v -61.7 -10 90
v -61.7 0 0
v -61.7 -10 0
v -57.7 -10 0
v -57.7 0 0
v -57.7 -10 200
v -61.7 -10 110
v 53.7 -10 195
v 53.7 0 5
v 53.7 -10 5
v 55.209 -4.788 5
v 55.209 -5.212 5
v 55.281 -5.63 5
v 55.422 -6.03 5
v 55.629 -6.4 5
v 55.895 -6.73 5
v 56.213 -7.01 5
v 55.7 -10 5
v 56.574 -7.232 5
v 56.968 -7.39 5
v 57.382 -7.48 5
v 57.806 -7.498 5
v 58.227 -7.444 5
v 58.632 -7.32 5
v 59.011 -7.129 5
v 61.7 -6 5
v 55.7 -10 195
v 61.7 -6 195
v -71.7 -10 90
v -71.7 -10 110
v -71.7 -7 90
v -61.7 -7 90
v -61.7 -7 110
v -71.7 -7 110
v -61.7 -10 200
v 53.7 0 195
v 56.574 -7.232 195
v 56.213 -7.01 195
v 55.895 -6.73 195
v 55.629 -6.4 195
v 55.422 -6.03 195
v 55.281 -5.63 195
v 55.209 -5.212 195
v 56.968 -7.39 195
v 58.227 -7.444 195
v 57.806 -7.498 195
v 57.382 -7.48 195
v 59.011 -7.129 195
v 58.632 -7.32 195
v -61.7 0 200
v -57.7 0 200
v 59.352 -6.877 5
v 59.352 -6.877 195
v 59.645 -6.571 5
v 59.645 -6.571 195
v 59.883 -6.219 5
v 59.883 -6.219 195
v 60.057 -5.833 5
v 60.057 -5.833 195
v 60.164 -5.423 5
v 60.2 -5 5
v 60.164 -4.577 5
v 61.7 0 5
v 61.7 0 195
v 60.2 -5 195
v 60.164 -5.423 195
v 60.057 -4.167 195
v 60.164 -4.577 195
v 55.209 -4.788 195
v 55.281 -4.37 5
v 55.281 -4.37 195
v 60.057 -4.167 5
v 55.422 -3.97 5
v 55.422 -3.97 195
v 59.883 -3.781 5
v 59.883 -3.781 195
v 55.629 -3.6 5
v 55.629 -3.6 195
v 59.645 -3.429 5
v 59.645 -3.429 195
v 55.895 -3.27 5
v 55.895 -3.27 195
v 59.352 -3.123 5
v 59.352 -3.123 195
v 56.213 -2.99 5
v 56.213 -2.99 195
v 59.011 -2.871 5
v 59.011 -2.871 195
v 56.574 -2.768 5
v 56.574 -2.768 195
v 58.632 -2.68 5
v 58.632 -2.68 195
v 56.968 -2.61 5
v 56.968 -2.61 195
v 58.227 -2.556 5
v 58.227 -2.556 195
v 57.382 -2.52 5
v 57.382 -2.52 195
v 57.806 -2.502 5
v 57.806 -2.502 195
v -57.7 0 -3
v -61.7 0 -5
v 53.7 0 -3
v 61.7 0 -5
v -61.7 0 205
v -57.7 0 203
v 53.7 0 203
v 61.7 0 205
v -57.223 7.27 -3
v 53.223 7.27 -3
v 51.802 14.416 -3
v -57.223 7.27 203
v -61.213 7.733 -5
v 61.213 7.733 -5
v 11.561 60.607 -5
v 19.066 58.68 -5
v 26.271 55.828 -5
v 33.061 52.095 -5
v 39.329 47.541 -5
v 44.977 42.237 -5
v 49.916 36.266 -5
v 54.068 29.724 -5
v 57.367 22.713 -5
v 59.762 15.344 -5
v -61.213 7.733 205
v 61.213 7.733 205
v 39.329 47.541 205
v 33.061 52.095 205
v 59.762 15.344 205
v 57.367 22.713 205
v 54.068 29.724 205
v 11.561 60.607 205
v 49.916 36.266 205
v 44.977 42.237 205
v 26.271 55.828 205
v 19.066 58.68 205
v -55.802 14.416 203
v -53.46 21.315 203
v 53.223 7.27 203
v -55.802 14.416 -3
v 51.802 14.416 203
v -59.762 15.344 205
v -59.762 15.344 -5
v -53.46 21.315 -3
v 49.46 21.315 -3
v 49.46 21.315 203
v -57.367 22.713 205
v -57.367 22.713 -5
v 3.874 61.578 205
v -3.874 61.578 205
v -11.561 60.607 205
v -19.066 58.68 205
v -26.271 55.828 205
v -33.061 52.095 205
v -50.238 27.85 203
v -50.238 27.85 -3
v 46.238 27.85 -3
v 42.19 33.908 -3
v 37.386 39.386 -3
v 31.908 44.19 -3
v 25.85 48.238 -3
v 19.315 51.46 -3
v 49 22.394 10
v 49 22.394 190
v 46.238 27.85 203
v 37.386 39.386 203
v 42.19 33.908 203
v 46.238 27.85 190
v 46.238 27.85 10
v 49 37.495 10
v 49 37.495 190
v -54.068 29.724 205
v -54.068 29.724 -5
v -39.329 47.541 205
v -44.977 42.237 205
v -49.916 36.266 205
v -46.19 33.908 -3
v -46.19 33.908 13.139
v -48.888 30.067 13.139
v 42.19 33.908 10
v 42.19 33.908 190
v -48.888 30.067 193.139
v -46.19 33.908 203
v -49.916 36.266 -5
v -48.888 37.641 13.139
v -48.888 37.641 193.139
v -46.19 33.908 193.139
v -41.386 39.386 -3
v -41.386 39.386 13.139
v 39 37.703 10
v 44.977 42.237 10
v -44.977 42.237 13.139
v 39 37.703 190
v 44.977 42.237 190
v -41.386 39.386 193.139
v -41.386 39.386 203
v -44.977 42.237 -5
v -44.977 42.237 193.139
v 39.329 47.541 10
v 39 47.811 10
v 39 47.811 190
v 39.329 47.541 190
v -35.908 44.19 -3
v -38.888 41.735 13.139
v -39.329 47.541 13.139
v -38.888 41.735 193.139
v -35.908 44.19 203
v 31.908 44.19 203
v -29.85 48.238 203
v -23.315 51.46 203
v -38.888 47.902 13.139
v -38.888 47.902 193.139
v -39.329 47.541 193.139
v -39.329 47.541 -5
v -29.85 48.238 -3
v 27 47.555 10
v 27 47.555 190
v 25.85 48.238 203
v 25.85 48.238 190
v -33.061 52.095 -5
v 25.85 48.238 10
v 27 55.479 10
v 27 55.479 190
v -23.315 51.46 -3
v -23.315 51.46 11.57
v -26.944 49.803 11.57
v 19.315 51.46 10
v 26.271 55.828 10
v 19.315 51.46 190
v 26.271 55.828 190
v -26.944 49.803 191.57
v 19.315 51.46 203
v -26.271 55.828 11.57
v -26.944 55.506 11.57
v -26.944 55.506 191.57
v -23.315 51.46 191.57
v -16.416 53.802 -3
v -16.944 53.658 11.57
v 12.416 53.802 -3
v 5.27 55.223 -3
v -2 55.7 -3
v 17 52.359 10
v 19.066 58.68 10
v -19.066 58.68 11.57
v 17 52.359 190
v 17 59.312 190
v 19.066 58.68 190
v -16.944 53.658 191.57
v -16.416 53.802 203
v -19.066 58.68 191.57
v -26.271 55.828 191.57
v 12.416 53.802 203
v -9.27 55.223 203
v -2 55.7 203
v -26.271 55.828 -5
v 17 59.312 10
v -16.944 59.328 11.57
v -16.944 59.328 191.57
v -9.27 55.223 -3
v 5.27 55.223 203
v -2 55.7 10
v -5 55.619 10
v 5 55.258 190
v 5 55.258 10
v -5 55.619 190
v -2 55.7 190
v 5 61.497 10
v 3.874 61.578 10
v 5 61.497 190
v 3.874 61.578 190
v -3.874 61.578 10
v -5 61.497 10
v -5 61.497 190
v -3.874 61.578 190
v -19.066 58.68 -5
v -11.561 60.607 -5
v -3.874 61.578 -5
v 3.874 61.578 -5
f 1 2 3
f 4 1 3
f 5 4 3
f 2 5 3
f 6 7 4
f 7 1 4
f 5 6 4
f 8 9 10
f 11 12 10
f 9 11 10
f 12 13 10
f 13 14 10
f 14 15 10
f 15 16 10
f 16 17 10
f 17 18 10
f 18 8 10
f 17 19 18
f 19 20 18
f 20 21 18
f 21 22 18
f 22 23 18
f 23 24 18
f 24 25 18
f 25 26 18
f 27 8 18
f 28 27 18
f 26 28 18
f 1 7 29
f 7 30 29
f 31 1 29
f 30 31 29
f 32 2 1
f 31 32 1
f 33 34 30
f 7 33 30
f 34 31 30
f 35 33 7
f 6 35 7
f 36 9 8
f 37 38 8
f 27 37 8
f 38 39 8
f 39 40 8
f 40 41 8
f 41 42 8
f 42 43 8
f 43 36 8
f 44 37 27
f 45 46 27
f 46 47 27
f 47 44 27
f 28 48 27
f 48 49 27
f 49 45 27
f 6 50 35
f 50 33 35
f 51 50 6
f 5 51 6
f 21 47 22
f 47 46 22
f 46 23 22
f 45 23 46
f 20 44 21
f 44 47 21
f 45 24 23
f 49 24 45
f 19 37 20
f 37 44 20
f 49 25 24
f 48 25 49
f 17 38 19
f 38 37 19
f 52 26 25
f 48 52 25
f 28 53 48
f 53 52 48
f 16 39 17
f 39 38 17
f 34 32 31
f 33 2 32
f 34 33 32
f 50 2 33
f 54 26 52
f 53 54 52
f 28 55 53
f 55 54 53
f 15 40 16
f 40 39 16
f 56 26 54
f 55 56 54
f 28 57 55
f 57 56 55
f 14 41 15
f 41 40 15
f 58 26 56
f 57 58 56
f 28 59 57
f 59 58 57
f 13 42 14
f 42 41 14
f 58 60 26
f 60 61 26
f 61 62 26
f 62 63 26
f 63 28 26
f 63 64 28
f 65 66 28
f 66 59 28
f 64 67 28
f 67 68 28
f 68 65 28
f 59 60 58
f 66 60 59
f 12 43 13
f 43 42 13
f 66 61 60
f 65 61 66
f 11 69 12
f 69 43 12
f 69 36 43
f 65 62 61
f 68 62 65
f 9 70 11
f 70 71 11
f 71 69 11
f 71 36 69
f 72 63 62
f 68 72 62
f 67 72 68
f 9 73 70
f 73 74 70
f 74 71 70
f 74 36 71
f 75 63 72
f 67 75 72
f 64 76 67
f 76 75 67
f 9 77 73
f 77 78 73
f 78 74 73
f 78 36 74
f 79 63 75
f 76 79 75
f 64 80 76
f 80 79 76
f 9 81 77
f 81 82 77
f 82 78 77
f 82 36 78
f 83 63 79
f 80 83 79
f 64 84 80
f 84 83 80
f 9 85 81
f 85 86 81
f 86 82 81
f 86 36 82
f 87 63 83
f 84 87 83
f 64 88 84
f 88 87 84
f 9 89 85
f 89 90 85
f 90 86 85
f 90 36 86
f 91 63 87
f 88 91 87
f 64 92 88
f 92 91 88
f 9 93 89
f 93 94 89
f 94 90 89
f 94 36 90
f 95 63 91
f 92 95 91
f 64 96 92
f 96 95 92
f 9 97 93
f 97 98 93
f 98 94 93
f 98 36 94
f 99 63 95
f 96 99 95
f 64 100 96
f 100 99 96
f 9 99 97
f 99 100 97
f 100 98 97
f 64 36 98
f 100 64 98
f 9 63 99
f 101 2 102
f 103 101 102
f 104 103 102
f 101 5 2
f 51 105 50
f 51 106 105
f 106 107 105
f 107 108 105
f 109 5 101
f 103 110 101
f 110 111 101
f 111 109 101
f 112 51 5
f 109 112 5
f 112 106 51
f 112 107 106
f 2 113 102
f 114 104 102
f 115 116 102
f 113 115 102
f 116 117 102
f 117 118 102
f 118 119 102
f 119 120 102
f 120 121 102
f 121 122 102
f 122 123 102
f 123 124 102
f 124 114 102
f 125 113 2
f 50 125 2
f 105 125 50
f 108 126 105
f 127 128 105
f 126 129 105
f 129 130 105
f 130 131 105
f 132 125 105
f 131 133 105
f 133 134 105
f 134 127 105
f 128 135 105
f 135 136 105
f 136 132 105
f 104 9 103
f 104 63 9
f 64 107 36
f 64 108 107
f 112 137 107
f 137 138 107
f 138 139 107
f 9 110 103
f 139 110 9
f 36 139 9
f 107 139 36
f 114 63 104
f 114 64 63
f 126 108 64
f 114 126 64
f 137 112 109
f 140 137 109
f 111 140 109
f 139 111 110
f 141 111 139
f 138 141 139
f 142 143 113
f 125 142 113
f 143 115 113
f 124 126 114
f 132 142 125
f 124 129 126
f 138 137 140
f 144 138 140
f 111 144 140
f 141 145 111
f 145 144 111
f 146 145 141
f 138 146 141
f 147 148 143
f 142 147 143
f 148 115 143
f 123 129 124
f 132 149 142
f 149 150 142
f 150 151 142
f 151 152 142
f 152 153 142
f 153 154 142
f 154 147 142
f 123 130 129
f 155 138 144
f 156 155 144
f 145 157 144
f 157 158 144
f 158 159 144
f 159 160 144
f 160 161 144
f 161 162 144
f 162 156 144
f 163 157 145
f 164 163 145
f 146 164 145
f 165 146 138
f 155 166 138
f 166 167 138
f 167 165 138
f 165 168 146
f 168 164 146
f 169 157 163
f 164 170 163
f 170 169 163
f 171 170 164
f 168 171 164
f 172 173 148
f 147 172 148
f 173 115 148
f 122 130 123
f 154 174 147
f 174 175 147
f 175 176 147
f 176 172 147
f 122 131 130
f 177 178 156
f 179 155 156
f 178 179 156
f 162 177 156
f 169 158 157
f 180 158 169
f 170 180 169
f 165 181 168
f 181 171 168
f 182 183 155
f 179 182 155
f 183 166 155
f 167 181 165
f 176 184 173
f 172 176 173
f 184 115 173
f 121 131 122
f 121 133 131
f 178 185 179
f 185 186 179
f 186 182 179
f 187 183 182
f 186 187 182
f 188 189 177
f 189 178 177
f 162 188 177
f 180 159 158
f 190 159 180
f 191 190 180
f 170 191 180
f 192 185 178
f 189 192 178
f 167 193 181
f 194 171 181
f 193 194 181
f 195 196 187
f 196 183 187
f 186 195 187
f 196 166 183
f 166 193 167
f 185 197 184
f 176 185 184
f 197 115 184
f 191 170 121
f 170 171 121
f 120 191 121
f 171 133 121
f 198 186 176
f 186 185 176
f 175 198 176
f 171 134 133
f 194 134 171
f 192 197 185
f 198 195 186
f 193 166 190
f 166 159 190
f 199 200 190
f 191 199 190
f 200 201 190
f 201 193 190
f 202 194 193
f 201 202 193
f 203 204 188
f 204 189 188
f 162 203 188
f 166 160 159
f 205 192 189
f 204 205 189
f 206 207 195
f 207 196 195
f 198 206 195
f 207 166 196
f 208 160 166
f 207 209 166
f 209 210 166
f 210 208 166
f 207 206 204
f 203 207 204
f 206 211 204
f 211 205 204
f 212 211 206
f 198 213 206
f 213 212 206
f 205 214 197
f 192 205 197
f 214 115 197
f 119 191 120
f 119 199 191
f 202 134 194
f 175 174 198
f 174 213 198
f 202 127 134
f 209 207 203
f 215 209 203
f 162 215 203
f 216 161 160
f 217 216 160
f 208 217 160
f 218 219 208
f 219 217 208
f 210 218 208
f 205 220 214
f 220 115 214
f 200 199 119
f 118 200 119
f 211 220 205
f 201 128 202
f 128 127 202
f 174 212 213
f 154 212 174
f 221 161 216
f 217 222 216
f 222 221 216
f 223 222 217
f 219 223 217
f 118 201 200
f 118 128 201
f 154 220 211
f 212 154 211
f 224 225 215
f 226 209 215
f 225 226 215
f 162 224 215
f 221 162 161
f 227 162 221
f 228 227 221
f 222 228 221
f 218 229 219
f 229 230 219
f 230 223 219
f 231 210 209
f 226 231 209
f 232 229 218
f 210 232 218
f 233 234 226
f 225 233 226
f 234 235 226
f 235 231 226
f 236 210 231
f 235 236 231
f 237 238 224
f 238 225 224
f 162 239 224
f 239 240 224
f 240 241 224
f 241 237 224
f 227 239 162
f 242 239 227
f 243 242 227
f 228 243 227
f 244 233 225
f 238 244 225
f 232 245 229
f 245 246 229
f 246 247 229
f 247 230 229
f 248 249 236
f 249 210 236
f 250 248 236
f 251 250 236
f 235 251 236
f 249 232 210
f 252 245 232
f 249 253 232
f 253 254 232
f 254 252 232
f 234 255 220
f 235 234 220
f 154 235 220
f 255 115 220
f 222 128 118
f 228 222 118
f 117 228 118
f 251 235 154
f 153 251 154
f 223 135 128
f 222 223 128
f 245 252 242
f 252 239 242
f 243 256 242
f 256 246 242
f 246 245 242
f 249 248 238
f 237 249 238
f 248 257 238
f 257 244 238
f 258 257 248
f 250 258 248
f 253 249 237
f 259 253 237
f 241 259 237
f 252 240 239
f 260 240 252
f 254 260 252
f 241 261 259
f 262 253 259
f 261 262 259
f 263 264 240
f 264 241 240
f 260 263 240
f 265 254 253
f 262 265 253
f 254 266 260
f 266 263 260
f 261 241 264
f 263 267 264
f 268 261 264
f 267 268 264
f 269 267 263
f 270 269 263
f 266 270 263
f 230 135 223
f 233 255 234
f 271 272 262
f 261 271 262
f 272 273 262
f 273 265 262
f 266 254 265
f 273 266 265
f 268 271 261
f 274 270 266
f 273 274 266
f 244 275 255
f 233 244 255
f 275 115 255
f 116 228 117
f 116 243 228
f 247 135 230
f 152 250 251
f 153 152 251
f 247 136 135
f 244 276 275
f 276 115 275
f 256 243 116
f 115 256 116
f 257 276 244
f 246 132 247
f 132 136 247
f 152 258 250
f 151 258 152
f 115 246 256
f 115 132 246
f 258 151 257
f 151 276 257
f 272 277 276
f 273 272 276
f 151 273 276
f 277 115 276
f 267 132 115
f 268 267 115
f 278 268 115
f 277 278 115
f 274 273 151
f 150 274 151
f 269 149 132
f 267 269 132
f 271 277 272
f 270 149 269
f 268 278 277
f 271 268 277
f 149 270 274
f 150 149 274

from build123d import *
from build123d.topology import SkipClean

# Parameters (mm, degrees)
EXTRUDE_1_DEPTH     = 200
SKETCH_2_W          = 10
SKETCH_2_H          = 180
CUT_EXTRUDE_1_DEPTH = 219.205820271
SKETCH_3_W          = 8
SKETCH_3_H          = 190
EXTRUDE_2_DEPTH     = 10
SKETCH_4_R          = 2.5
CUT_EXTRUDE_2_DEPTH = 214.632347738
SKETCH_5_W          = 20
SKETCH_5_H          = 3
EXTRUDE_3_DEPTH     = 10
CUT_EXTRUDE_3_DEPTH = 217.732046546
EXTRUDE_4_DEPTH     = 5
EXTRUDE_START       = 5
EXTRUDE_5_DEPTH     = 5
CUT_EXTRUDE_START   = -3
CUT_EXTRUDE_4_DEPTH = 3
CUT_EXTRUDE_5_DEPTH = 3


with BuildPart() as part:
    # 草圖1 → 填料-伸長1 (new body)
    with BuildSketch(Plane.XY):
        with BuildLine():
            Line((-61.7, 0), (-61.7, -10))
            Line((-61.7, -10), (-57.7, -10))
            Line((-57.7, -10), (-57.7, 0))
            ThreePointArc((-57.7, 0), (-2, 55.7), (53.7, 0))
            Line((53.7, 0), (61.7, 0))
            ThreePointArc((61.7, 0), (0, 61.7), (-61.7, 0))
        make_face()
    extrude(amount=EXTRUDE_1_DEPTH)

    # 草圖2 → 除料-伸長1 (cut, through all)
    with BuildSketch(Plane(origin=(0, 0, 0), x_dir=(1, 0, 0), z_dir=(0, 1, 0))):
        with Locations((0, -100)):
            Rectangle(SKETCH_2_W, SKETCH_2_H)
        with Locations((22, -100)):
            Rectangle(SKETCH_2_W, SKETCH_2_H)
        with Locations((44, -100)):
            Rectangle(SKETCH_2_W, SKETCH_2_H)
        with Locations((-21.943943619, -101.569502613)):
            Rectangle(SKETCH_2_W, SKETCH_2_H)
        with Locations((-43.887887238, -103.139005227)):
            Rectangle(SKETCH_2_W, SKETCH_2_H)
    extrude(amount=CUT_EXTRUDE_1_DEPTH, mode=Mode.SUBTRACT)

    # 草圖3 → 填料-伸長2 (add)
    with BuildSketch(Plane.XZ):
        with Locations((57.7, 100)):
            Rectangle(SKETCH_3_W, SKETCH_3_H)
    extrude(amount=EXTRUDE_2_DEPTH)

    # 草圖4 → 除料-伸長2 (cut, through all)
    with BuildSketch(Plane.XY.offset(195)):
        with Locations((57.7, -5)):
            Circle(SKETCH_4_R)
    extrude(amount=-CUT_EXTRUDE_2_DEPTH, mode=Mode.SUBTRACT)

    # 草圖5 → 填料-伸長3 (add)
    with BuildSketch(Plane.ZY.offset(61.7)):
        with Locations((100, -8.5)):
            Rectangle(SKETCH_5_W, SKETCH_5_H)
    extrude(amount=EXTRUDE_3_DEPTH)

    # 草圖6 → 除料-伸長3 (cut, through all)
    with BuildSketch(Plane.XY.offset(195)):
        Polygon((61.7, -10), (61.7, -6), (55.7, -10), align=None)
    extrude(amount=-CUT_EXTRUDE_3_DEPTH, mode=Mode.SUBTRACT)

    # 草圖7 → 填料-伸長4 (add)
    with SkipClean():  # the faces are left unmerged after this step: merging them gives an invalid solid
        with BuildSketch(Plane.XY.offset(200)):
            with BuildLine():
                Line((61.7, 0), (-61.7, 0))
                ThreePointArc((-61.7, 0), (0, 61.7), (61.7, 0))
            make_face()
        extrude(amount=EXTRUDE_4_DEPTH)

    # 草圖8 → 填料-伸長5 (add)
    with SkipClean():  # the faces are left unmerged after this step: merging them gives an invalid solid
        with BuildSketch(Plane(origin=(0, 0, 0), x_dir=(-1, 0, 0), z_dir=(0, 0, -1)).offset(EXTRUDE_START)):
            with BuildLine():
                Line((-61.7, 0), (61.7, 0))
                ThreePointArc((61.7, 0), (0, 61.7), (-61.7, 0))
            make_face()
        extrude(amount=-EXTRUDE_5_DEPTH)

    # 草圖9 → 除料-伸長4 (cut)
    with SkipClean():  # the faces are left unmerged after this step: merging them gives an invalid solid
        with BuildSketch(Plane.XY.offset(CUT_EXTRUDE_START)):
            with BuildLine():
                Line((-57.7, 0), (53.7, 0))
                ThreePointArc((53.7, 0), (-2, 55.7), (-57.7, 0))
            make_face()
        extrude(amount=CUT_EXTRUDE_4_DEPTH, mode=Mode.SUBTRACT)

    # 草圖10 → 除料-伸長5 (cut)
    with SkipClean():  # the faces are left unmerged after this step: merging them gives an invalid solid
        with BuildSketch(Plane(origin=(0, 0, 200), x_dir=(-1, 0, 0), z_dir=(0, 0, -1))):
            with BuildLine():
                Line((-53.7, 0), (57.7, 0))
                ThreePointArc((57.7, 0), (2, 55.7), (-53.7, 0))
            make_face()
        extrude(amount=-CUT_EXTRUDE_5_DEPTH, mode=Mode.SUBTRACT)


solid = part.part
